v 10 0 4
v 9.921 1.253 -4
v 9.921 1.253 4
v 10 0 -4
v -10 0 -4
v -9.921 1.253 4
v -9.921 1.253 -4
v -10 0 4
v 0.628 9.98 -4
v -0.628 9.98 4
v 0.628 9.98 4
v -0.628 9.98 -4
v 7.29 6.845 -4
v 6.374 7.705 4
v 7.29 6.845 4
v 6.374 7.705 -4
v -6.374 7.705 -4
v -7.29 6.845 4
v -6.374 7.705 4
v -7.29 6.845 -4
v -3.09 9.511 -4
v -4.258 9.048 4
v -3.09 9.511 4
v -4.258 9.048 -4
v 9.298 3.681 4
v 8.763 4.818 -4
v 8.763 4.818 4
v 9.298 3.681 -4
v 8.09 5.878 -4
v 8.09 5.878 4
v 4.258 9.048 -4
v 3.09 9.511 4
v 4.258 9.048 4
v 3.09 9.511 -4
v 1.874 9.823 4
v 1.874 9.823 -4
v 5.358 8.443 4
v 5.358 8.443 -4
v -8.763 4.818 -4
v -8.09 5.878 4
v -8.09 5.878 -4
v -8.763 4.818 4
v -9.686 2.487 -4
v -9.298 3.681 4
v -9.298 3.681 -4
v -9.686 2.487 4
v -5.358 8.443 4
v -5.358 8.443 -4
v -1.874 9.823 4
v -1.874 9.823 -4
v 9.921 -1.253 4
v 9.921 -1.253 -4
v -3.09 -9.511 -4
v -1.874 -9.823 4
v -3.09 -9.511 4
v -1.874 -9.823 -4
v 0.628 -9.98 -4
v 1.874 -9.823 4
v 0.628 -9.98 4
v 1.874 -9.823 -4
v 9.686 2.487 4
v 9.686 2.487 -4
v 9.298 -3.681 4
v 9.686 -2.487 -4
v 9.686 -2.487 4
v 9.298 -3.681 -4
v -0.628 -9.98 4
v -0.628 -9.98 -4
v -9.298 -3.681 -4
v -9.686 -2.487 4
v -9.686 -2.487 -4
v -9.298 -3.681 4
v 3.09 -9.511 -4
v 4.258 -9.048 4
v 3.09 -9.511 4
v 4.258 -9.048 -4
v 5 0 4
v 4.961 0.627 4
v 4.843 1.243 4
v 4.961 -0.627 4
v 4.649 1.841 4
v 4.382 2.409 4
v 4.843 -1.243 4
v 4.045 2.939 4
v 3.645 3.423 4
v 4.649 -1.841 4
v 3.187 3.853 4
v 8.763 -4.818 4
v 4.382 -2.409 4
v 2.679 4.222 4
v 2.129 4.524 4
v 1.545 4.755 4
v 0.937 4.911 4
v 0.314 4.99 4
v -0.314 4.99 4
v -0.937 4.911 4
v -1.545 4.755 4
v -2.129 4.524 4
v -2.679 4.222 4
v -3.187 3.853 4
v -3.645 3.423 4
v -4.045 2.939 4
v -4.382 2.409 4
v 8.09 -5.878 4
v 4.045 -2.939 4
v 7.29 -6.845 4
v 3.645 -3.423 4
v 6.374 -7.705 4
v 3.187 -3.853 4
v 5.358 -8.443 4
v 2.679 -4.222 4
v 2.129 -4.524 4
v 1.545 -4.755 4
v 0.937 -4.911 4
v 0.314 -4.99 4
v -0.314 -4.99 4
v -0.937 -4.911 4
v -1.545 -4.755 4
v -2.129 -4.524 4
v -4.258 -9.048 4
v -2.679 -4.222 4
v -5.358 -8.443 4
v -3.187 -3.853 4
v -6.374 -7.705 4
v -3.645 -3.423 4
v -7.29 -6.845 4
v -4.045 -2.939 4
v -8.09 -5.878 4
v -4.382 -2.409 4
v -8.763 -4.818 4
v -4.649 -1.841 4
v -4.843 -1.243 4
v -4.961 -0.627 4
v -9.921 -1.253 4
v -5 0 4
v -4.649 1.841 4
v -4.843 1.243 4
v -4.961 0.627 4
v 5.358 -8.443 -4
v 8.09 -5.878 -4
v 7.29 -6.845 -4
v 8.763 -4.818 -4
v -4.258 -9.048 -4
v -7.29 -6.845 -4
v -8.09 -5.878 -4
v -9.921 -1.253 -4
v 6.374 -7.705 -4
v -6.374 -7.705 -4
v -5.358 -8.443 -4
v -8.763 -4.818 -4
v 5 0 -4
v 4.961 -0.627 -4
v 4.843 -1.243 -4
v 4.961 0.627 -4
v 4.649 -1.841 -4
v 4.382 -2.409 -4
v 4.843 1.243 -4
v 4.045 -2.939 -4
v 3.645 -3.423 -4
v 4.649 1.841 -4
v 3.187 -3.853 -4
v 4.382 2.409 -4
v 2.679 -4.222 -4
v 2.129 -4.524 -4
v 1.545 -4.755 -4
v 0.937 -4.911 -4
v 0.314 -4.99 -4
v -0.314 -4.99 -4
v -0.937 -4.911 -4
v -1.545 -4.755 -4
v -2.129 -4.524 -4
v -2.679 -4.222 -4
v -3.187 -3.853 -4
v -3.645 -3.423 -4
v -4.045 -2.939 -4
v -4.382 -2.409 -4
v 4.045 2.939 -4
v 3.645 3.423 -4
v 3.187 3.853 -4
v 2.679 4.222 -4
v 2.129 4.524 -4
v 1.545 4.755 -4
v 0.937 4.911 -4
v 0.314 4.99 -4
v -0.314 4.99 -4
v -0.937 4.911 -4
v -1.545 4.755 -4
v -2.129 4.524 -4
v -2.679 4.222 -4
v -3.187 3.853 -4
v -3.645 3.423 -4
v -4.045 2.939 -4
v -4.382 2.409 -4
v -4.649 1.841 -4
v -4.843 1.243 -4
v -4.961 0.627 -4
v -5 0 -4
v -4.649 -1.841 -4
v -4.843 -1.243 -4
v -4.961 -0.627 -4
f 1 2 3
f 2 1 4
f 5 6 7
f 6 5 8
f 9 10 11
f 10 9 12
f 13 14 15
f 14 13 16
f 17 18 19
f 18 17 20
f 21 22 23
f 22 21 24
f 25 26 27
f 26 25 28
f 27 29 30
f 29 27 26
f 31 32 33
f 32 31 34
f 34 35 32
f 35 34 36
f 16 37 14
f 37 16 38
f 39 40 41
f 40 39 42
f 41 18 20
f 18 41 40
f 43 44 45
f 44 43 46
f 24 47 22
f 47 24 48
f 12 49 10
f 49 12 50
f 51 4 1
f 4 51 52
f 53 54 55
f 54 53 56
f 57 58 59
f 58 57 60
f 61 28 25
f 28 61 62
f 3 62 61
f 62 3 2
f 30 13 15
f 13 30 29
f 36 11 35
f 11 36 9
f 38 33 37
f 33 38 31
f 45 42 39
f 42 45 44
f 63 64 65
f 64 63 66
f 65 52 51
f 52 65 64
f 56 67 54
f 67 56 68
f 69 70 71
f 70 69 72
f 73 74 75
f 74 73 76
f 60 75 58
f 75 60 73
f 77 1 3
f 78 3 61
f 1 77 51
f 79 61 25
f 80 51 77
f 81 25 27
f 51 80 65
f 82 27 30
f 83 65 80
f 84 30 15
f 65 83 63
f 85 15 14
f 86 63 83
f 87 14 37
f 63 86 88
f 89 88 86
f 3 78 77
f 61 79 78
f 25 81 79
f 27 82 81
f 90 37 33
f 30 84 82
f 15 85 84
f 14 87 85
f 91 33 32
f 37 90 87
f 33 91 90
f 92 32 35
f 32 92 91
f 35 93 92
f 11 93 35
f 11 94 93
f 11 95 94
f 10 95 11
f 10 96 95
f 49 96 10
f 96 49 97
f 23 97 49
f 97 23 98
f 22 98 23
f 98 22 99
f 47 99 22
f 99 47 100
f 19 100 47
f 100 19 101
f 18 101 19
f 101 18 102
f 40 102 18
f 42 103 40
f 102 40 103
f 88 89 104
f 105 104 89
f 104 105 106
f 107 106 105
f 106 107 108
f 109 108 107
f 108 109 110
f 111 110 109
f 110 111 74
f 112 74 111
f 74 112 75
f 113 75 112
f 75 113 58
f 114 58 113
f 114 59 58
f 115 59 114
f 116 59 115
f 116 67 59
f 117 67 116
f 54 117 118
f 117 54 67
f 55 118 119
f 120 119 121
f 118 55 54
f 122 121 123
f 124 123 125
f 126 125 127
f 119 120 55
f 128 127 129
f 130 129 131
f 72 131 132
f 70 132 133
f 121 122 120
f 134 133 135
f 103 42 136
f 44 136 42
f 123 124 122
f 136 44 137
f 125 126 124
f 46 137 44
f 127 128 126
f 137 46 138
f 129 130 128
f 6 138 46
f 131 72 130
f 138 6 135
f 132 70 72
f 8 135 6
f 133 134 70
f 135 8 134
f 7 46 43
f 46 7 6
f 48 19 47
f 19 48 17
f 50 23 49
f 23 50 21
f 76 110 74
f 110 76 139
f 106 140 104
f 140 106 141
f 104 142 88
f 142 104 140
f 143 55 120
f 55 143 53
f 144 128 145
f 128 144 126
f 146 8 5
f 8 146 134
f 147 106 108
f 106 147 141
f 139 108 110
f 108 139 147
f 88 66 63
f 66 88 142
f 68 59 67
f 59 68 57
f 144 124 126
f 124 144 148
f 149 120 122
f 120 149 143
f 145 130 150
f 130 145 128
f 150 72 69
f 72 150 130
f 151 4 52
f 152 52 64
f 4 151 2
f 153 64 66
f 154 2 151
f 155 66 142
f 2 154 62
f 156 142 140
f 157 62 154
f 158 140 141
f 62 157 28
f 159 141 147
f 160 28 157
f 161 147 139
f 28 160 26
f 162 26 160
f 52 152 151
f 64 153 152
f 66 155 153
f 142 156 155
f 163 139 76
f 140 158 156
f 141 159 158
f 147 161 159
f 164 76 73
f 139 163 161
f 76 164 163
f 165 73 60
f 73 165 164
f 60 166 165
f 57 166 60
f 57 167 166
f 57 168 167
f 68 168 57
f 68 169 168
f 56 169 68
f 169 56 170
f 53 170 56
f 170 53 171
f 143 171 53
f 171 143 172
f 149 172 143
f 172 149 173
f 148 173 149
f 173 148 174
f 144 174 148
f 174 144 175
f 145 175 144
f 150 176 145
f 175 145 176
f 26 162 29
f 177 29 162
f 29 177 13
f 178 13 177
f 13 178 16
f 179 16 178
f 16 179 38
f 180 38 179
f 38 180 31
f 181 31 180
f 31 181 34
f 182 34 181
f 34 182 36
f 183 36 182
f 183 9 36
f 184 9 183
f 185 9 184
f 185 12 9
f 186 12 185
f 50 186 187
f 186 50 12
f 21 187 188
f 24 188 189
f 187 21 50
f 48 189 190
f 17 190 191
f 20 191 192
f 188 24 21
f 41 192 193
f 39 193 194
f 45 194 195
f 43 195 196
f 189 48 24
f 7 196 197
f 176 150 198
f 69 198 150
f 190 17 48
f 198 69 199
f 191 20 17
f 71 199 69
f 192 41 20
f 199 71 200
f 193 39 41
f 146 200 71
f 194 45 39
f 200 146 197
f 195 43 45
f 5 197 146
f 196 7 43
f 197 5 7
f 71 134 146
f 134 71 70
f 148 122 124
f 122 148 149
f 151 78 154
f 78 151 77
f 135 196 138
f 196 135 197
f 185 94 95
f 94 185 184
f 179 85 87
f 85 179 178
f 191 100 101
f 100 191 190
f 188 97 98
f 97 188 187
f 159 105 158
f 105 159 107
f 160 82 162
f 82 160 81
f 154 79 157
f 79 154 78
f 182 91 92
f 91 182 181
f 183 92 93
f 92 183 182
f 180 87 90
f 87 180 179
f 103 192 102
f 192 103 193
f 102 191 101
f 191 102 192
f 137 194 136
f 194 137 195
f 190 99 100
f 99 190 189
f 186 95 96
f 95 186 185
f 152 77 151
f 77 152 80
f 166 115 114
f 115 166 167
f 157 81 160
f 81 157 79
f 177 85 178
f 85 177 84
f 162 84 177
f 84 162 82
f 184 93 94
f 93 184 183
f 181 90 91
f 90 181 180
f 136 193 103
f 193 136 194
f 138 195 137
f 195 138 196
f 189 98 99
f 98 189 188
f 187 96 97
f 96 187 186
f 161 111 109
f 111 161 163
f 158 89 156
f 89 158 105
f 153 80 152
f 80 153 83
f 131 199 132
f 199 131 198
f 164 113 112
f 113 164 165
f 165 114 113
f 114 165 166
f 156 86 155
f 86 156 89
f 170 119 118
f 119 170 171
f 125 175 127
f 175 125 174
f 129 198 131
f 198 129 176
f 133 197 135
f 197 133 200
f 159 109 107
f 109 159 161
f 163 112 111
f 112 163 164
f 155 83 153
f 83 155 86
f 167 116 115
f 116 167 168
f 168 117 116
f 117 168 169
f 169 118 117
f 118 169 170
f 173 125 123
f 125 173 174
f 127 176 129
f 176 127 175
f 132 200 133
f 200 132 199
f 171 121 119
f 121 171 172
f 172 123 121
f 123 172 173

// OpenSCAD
$fn = 50;


difference() {
	union() {
		translate(v = [0, 0, -4.0000000000]) {
			cylinder(h = 8, r = 10.0000000000);
		}
	}
	union() {
		translate(v = [0, 0, -100.0000000000]) {
			cylinder(h = 200, r = 5.0000000000);
		}
	}
}
